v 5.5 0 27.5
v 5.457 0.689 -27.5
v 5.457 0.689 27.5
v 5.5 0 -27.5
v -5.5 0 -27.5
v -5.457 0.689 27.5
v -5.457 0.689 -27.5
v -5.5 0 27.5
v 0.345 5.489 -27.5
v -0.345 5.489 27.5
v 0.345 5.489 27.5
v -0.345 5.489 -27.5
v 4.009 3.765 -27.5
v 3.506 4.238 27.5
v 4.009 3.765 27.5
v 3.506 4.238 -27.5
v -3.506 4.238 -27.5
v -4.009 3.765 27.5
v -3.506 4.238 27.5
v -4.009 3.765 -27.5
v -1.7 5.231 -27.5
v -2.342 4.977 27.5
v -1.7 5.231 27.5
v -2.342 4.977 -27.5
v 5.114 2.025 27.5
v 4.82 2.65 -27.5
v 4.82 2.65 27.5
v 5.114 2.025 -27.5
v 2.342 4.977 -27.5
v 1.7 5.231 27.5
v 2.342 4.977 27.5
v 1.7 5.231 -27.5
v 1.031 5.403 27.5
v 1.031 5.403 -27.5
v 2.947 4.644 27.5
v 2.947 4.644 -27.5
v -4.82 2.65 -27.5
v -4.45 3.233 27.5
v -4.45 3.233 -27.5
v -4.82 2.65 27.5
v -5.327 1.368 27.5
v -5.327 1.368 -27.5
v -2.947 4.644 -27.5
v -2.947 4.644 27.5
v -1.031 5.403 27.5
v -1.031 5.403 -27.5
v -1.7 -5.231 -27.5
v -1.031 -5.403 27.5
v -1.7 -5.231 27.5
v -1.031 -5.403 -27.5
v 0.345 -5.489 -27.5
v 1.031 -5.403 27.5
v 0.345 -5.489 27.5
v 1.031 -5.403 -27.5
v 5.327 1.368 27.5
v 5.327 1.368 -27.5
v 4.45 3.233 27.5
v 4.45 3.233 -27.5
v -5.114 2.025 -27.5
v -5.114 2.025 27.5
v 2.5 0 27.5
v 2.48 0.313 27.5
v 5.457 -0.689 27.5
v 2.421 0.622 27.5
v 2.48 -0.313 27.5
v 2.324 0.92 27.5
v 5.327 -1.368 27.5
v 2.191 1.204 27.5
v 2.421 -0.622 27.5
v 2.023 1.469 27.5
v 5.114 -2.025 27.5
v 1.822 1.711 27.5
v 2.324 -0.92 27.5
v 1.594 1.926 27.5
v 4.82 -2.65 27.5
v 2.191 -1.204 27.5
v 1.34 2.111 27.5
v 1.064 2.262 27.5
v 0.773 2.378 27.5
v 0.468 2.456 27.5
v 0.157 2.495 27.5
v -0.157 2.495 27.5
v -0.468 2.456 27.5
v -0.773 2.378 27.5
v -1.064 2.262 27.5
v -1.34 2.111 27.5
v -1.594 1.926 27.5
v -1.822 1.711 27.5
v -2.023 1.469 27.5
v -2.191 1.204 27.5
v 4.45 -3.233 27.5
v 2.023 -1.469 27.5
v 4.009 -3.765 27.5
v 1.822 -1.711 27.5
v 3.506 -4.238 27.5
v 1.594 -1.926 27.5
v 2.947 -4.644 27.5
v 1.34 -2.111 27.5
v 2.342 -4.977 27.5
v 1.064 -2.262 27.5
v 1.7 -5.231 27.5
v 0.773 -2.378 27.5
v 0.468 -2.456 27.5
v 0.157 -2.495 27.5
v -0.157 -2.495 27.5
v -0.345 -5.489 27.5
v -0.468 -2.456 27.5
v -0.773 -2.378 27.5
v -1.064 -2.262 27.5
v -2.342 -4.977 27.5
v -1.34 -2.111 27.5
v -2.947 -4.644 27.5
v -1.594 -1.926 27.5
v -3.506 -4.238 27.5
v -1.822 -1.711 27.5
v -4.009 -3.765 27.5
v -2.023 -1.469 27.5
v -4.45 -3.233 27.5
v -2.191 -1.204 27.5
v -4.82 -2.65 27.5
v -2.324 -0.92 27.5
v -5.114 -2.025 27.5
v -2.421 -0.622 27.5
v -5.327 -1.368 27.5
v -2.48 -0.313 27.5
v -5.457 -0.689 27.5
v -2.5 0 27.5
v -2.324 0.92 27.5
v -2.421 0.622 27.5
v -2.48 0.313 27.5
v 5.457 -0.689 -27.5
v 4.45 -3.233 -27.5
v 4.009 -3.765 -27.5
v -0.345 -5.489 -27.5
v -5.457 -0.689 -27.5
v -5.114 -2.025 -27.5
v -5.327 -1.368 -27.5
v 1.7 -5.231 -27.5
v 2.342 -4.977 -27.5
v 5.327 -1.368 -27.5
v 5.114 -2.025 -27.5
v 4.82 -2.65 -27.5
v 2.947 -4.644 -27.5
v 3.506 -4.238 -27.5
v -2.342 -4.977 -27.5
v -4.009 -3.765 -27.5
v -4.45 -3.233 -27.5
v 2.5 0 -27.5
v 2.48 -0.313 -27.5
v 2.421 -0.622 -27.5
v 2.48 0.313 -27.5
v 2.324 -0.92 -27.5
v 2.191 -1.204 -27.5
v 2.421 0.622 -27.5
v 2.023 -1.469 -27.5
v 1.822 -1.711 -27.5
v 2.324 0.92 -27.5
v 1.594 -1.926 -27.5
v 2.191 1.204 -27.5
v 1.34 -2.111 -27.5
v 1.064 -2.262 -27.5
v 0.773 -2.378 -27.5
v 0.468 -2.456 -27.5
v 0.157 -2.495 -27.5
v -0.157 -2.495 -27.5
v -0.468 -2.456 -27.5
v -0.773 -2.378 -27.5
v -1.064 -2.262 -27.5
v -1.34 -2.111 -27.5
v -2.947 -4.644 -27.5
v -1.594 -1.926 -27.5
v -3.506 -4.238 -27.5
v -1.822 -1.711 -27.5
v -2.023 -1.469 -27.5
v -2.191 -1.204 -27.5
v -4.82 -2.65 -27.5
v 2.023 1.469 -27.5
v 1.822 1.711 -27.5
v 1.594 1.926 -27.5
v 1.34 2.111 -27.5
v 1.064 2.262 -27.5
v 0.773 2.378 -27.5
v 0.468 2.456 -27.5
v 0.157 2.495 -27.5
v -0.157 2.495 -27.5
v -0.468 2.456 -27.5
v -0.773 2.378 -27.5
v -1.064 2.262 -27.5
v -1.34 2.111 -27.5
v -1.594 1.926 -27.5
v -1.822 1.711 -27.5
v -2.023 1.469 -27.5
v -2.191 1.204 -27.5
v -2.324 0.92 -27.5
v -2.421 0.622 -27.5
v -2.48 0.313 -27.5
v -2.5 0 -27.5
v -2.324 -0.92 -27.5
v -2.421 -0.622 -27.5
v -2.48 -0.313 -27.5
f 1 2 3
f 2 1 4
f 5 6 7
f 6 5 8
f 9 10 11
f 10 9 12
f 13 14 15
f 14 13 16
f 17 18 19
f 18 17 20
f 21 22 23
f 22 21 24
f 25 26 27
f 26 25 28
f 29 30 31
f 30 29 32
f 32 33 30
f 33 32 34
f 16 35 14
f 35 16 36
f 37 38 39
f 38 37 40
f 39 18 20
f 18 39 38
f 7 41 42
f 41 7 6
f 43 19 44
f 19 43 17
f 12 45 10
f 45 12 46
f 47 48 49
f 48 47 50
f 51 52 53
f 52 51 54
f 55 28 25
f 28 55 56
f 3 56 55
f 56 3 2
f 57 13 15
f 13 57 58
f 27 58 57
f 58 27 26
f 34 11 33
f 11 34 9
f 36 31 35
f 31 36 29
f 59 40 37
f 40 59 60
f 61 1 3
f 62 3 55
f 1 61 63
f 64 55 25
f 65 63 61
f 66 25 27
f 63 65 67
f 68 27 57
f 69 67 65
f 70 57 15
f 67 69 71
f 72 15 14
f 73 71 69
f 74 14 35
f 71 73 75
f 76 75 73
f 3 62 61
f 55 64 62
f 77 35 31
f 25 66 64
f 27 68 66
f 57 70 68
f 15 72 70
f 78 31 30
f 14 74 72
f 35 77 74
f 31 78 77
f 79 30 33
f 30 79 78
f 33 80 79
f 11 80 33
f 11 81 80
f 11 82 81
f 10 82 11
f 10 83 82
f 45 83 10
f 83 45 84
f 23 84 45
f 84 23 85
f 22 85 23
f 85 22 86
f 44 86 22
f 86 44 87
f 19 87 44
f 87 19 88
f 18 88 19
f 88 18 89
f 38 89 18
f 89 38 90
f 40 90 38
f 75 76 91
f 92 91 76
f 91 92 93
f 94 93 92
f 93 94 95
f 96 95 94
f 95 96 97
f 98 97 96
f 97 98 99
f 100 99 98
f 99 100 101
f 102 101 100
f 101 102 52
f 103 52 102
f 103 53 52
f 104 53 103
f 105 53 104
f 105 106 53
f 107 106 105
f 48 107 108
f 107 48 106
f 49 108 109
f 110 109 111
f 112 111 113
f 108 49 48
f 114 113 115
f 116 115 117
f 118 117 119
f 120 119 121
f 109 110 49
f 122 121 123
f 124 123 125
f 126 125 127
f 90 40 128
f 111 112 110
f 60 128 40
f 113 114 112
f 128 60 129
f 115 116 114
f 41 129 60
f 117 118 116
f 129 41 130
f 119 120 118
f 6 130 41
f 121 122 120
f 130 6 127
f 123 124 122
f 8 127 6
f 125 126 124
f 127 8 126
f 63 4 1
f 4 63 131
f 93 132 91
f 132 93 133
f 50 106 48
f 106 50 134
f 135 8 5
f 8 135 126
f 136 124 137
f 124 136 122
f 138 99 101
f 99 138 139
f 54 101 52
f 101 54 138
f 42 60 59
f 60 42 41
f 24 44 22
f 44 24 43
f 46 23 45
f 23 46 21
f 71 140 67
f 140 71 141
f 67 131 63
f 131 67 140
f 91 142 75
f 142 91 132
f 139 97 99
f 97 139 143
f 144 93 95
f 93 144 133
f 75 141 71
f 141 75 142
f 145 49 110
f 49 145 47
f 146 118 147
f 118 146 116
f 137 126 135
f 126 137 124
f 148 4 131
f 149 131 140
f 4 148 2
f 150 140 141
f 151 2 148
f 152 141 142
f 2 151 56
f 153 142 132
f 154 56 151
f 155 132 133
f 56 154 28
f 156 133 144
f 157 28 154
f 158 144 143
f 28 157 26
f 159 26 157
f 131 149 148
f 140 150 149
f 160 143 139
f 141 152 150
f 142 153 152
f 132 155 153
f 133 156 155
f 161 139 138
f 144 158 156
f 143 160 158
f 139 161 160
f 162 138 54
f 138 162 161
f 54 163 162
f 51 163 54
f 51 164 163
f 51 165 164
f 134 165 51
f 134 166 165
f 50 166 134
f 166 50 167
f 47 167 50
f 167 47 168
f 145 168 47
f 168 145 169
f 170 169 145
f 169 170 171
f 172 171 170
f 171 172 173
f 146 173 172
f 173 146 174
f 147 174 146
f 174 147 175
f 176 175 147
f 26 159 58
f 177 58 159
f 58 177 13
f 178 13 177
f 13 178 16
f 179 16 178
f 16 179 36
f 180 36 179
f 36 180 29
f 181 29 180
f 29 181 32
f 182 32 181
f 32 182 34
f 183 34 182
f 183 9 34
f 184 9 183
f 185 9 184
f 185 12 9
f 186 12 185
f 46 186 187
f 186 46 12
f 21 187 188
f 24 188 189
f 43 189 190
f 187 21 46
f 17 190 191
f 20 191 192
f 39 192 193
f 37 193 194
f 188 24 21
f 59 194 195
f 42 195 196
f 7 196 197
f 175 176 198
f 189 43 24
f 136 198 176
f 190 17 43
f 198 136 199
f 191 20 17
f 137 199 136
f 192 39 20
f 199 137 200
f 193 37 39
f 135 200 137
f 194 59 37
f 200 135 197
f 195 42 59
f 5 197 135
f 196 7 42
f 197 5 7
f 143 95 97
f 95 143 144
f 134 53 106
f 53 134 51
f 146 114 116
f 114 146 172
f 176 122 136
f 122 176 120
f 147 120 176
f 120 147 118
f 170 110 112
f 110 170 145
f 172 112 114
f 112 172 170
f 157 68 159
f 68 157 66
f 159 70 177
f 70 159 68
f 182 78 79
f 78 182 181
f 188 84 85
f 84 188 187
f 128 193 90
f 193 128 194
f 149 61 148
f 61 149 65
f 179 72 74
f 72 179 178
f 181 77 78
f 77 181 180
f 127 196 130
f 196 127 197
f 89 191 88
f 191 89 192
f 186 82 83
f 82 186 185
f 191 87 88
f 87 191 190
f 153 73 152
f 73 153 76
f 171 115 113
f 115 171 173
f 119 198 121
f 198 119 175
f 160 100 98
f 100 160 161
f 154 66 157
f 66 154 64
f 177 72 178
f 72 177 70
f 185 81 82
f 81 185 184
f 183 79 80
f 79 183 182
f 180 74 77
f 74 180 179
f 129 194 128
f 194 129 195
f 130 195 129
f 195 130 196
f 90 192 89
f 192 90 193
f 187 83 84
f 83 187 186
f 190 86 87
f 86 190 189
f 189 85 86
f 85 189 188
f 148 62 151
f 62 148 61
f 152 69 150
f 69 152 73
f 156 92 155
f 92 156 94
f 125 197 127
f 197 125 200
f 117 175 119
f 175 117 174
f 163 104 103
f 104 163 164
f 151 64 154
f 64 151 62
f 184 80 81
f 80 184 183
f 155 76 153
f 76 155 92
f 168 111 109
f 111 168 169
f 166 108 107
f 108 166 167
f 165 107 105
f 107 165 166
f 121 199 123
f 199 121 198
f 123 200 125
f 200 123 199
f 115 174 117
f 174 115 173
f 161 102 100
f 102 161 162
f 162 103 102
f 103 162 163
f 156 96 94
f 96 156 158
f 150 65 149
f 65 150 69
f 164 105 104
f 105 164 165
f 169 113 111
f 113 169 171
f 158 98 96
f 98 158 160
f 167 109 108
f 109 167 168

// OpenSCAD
$fn = 50;


difference() {
	union() {
		translate(v = [0, 0, -27.5000000000]) {
			cylinder(h = 55, r = 5.5000000000);
		}
	}
	union() {
		translate(v = [0, 0, -100.0000000000]) {
			cylinder(h = 200, r = 2.5000000000);
		}
	}
}
